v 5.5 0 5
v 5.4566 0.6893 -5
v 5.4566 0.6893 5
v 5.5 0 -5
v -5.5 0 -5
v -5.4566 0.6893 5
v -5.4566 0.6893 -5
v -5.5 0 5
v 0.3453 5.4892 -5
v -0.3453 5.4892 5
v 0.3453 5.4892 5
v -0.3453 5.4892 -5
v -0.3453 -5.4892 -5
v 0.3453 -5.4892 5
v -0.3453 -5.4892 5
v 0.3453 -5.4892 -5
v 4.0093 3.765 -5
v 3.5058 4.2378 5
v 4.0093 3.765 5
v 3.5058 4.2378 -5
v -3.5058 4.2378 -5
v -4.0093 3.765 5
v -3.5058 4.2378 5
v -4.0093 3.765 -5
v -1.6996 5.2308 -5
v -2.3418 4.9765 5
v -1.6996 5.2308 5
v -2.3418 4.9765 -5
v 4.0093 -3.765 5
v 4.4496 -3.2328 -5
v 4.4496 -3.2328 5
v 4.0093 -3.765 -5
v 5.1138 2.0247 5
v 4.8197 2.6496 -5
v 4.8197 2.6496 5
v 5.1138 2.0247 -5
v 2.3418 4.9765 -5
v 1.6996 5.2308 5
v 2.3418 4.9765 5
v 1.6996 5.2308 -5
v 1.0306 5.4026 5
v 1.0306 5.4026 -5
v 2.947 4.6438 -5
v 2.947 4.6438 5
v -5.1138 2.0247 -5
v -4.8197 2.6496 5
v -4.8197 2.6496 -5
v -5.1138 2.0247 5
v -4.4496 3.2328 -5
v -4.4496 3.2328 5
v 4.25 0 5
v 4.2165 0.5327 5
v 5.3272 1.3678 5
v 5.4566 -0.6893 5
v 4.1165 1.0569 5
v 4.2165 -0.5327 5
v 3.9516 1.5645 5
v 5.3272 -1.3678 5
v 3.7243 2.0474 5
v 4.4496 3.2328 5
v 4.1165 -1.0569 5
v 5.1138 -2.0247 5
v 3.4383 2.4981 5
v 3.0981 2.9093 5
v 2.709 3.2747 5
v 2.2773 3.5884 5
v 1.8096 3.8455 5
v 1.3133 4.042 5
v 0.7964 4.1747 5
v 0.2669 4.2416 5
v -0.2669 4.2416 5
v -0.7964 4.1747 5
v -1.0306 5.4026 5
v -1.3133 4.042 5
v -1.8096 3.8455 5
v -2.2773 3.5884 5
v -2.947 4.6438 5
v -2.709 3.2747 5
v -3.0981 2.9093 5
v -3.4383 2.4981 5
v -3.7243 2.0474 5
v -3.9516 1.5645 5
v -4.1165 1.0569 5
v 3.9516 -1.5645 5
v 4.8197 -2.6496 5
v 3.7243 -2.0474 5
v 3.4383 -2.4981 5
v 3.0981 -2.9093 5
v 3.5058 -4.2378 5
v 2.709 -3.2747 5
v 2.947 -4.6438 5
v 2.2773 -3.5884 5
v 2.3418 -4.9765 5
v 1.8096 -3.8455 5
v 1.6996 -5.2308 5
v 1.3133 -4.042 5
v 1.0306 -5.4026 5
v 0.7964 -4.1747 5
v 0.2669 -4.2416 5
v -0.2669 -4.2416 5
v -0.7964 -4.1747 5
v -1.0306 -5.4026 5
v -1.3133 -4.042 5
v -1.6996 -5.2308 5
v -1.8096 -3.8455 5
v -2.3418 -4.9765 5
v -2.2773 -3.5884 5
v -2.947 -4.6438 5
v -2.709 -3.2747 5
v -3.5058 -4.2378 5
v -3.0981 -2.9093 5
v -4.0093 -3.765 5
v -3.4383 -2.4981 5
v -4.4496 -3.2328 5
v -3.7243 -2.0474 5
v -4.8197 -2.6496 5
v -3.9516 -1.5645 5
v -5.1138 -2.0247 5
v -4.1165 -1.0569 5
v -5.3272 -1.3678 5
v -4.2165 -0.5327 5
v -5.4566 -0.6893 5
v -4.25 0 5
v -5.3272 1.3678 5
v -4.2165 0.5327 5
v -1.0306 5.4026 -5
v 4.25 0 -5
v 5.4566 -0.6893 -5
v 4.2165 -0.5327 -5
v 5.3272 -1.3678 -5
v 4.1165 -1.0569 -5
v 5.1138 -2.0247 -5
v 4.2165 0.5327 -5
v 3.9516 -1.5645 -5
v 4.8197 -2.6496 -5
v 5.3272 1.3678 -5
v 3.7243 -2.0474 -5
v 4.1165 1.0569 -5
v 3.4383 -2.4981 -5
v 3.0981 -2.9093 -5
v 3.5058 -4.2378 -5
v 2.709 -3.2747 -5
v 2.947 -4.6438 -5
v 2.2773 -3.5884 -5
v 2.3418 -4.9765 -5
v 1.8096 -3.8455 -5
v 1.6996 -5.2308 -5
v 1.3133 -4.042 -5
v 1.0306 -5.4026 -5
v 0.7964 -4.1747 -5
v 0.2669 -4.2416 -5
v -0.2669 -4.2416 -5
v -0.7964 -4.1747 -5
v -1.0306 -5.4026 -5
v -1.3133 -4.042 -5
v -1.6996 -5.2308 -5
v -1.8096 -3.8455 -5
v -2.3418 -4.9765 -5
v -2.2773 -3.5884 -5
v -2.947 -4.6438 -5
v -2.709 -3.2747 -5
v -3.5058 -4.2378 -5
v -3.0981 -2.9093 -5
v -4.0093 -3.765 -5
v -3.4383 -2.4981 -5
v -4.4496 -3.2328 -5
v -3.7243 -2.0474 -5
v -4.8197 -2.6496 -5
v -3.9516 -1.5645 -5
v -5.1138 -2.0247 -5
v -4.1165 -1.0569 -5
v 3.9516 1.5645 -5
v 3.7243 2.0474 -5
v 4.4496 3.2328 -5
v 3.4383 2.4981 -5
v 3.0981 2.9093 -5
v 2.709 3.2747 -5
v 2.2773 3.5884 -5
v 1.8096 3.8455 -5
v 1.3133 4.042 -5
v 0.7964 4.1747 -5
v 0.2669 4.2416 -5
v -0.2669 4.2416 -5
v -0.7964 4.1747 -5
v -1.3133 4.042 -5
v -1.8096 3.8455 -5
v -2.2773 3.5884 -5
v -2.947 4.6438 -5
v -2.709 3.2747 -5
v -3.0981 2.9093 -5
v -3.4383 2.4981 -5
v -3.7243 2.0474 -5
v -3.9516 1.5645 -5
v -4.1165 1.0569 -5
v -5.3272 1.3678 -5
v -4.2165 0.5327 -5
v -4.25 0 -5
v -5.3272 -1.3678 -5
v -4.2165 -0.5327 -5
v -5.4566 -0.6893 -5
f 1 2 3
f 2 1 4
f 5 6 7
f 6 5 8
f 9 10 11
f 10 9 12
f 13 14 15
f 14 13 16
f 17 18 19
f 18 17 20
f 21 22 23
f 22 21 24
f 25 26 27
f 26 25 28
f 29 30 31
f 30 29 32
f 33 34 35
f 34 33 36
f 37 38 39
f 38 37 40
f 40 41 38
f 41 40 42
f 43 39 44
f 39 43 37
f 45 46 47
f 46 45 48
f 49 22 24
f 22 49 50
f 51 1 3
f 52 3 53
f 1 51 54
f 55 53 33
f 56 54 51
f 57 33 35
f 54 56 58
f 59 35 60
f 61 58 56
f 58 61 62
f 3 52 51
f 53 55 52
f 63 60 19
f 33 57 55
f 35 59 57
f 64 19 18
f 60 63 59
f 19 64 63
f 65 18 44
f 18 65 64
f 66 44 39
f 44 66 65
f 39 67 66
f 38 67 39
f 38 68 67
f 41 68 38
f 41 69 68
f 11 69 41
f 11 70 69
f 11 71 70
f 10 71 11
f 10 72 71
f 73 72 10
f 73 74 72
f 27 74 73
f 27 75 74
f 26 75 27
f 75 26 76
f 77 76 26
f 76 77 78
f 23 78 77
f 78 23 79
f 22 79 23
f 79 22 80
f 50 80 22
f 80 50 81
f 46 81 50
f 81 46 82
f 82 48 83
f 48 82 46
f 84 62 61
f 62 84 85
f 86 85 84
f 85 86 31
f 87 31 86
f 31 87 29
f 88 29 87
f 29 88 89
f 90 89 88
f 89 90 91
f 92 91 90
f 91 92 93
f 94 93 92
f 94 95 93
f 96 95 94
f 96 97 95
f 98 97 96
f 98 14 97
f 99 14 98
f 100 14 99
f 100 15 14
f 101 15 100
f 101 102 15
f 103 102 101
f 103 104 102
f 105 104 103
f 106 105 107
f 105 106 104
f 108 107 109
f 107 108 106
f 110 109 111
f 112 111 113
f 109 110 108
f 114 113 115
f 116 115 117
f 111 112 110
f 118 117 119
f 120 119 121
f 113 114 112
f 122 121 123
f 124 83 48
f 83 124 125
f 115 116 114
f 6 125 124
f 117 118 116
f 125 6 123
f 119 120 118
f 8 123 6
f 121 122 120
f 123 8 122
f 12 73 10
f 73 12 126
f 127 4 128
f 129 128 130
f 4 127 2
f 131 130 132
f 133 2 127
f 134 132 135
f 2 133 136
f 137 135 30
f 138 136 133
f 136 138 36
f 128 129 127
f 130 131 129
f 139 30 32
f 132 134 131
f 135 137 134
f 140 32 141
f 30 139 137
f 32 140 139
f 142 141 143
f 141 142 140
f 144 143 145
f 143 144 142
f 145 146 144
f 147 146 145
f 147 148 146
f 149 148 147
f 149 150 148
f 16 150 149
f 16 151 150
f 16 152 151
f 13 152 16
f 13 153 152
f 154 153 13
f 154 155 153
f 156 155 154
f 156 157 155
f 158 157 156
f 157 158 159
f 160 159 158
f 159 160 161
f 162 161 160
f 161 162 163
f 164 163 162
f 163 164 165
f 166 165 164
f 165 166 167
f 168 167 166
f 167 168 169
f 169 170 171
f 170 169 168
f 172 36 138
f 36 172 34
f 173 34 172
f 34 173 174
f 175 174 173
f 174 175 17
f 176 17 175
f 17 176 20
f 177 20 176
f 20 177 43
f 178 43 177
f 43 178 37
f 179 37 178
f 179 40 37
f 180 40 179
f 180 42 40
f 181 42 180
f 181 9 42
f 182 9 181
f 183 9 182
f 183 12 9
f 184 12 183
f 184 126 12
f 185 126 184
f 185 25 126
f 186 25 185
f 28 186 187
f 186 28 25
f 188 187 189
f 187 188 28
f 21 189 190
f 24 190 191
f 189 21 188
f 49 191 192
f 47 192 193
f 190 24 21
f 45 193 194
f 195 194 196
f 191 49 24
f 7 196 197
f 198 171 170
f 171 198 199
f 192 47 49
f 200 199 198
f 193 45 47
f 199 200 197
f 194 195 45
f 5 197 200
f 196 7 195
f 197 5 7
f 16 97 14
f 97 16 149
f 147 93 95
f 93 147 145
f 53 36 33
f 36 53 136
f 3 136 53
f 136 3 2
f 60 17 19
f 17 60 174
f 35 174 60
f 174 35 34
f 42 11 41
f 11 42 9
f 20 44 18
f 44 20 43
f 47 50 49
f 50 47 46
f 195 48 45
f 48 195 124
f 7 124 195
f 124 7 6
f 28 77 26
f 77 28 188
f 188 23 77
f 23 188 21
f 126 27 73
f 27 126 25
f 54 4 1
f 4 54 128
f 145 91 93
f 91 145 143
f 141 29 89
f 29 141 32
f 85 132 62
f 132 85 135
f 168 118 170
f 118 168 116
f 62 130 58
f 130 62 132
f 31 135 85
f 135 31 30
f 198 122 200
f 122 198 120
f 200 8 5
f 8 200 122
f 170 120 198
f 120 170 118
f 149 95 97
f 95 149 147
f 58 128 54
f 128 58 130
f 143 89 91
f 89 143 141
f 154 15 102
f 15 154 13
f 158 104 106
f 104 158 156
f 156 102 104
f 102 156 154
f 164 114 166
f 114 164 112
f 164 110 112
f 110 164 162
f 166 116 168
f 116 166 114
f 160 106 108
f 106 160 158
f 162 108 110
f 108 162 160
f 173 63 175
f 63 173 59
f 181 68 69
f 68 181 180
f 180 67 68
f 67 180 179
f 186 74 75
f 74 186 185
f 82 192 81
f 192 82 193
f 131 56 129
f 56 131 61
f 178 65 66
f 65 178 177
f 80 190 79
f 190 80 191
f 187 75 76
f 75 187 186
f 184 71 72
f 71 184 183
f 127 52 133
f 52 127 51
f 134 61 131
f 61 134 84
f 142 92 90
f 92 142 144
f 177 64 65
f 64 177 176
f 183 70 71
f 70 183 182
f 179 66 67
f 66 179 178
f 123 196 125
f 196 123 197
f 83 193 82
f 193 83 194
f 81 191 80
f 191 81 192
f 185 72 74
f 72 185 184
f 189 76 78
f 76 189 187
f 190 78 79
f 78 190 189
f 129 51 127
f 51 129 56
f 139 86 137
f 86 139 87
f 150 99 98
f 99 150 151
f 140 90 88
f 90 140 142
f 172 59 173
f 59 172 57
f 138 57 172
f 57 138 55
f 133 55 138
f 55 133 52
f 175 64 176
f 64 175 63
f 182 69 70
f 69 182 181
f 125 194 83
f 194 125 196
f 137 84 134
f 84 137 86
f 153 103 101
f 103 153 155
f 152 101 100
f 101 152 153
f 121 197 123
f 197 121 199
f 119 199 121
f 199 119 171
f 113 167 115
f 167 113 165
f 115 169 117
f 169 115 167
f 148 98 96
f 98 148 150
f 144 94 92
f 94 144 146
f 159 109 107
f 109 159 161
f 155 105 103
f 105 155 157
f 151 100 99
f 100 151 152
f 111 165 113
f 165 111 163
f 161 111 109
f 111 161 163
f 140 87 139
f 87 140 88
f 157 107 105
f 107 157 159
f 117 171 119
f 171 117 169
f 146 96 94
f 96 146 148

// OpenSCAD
$fn = 50;


difference() {
	union() {
		translate(v = [0, 0, -5.0000000000]) {
			cylinder(h = 10, r = 5.5000000000);
		}
	}
	union() {
		translate(v = [0, 0, -100.0000000000]) {
			cylinder(h = 200, r = 4.2500000000);
		}
	}
}
